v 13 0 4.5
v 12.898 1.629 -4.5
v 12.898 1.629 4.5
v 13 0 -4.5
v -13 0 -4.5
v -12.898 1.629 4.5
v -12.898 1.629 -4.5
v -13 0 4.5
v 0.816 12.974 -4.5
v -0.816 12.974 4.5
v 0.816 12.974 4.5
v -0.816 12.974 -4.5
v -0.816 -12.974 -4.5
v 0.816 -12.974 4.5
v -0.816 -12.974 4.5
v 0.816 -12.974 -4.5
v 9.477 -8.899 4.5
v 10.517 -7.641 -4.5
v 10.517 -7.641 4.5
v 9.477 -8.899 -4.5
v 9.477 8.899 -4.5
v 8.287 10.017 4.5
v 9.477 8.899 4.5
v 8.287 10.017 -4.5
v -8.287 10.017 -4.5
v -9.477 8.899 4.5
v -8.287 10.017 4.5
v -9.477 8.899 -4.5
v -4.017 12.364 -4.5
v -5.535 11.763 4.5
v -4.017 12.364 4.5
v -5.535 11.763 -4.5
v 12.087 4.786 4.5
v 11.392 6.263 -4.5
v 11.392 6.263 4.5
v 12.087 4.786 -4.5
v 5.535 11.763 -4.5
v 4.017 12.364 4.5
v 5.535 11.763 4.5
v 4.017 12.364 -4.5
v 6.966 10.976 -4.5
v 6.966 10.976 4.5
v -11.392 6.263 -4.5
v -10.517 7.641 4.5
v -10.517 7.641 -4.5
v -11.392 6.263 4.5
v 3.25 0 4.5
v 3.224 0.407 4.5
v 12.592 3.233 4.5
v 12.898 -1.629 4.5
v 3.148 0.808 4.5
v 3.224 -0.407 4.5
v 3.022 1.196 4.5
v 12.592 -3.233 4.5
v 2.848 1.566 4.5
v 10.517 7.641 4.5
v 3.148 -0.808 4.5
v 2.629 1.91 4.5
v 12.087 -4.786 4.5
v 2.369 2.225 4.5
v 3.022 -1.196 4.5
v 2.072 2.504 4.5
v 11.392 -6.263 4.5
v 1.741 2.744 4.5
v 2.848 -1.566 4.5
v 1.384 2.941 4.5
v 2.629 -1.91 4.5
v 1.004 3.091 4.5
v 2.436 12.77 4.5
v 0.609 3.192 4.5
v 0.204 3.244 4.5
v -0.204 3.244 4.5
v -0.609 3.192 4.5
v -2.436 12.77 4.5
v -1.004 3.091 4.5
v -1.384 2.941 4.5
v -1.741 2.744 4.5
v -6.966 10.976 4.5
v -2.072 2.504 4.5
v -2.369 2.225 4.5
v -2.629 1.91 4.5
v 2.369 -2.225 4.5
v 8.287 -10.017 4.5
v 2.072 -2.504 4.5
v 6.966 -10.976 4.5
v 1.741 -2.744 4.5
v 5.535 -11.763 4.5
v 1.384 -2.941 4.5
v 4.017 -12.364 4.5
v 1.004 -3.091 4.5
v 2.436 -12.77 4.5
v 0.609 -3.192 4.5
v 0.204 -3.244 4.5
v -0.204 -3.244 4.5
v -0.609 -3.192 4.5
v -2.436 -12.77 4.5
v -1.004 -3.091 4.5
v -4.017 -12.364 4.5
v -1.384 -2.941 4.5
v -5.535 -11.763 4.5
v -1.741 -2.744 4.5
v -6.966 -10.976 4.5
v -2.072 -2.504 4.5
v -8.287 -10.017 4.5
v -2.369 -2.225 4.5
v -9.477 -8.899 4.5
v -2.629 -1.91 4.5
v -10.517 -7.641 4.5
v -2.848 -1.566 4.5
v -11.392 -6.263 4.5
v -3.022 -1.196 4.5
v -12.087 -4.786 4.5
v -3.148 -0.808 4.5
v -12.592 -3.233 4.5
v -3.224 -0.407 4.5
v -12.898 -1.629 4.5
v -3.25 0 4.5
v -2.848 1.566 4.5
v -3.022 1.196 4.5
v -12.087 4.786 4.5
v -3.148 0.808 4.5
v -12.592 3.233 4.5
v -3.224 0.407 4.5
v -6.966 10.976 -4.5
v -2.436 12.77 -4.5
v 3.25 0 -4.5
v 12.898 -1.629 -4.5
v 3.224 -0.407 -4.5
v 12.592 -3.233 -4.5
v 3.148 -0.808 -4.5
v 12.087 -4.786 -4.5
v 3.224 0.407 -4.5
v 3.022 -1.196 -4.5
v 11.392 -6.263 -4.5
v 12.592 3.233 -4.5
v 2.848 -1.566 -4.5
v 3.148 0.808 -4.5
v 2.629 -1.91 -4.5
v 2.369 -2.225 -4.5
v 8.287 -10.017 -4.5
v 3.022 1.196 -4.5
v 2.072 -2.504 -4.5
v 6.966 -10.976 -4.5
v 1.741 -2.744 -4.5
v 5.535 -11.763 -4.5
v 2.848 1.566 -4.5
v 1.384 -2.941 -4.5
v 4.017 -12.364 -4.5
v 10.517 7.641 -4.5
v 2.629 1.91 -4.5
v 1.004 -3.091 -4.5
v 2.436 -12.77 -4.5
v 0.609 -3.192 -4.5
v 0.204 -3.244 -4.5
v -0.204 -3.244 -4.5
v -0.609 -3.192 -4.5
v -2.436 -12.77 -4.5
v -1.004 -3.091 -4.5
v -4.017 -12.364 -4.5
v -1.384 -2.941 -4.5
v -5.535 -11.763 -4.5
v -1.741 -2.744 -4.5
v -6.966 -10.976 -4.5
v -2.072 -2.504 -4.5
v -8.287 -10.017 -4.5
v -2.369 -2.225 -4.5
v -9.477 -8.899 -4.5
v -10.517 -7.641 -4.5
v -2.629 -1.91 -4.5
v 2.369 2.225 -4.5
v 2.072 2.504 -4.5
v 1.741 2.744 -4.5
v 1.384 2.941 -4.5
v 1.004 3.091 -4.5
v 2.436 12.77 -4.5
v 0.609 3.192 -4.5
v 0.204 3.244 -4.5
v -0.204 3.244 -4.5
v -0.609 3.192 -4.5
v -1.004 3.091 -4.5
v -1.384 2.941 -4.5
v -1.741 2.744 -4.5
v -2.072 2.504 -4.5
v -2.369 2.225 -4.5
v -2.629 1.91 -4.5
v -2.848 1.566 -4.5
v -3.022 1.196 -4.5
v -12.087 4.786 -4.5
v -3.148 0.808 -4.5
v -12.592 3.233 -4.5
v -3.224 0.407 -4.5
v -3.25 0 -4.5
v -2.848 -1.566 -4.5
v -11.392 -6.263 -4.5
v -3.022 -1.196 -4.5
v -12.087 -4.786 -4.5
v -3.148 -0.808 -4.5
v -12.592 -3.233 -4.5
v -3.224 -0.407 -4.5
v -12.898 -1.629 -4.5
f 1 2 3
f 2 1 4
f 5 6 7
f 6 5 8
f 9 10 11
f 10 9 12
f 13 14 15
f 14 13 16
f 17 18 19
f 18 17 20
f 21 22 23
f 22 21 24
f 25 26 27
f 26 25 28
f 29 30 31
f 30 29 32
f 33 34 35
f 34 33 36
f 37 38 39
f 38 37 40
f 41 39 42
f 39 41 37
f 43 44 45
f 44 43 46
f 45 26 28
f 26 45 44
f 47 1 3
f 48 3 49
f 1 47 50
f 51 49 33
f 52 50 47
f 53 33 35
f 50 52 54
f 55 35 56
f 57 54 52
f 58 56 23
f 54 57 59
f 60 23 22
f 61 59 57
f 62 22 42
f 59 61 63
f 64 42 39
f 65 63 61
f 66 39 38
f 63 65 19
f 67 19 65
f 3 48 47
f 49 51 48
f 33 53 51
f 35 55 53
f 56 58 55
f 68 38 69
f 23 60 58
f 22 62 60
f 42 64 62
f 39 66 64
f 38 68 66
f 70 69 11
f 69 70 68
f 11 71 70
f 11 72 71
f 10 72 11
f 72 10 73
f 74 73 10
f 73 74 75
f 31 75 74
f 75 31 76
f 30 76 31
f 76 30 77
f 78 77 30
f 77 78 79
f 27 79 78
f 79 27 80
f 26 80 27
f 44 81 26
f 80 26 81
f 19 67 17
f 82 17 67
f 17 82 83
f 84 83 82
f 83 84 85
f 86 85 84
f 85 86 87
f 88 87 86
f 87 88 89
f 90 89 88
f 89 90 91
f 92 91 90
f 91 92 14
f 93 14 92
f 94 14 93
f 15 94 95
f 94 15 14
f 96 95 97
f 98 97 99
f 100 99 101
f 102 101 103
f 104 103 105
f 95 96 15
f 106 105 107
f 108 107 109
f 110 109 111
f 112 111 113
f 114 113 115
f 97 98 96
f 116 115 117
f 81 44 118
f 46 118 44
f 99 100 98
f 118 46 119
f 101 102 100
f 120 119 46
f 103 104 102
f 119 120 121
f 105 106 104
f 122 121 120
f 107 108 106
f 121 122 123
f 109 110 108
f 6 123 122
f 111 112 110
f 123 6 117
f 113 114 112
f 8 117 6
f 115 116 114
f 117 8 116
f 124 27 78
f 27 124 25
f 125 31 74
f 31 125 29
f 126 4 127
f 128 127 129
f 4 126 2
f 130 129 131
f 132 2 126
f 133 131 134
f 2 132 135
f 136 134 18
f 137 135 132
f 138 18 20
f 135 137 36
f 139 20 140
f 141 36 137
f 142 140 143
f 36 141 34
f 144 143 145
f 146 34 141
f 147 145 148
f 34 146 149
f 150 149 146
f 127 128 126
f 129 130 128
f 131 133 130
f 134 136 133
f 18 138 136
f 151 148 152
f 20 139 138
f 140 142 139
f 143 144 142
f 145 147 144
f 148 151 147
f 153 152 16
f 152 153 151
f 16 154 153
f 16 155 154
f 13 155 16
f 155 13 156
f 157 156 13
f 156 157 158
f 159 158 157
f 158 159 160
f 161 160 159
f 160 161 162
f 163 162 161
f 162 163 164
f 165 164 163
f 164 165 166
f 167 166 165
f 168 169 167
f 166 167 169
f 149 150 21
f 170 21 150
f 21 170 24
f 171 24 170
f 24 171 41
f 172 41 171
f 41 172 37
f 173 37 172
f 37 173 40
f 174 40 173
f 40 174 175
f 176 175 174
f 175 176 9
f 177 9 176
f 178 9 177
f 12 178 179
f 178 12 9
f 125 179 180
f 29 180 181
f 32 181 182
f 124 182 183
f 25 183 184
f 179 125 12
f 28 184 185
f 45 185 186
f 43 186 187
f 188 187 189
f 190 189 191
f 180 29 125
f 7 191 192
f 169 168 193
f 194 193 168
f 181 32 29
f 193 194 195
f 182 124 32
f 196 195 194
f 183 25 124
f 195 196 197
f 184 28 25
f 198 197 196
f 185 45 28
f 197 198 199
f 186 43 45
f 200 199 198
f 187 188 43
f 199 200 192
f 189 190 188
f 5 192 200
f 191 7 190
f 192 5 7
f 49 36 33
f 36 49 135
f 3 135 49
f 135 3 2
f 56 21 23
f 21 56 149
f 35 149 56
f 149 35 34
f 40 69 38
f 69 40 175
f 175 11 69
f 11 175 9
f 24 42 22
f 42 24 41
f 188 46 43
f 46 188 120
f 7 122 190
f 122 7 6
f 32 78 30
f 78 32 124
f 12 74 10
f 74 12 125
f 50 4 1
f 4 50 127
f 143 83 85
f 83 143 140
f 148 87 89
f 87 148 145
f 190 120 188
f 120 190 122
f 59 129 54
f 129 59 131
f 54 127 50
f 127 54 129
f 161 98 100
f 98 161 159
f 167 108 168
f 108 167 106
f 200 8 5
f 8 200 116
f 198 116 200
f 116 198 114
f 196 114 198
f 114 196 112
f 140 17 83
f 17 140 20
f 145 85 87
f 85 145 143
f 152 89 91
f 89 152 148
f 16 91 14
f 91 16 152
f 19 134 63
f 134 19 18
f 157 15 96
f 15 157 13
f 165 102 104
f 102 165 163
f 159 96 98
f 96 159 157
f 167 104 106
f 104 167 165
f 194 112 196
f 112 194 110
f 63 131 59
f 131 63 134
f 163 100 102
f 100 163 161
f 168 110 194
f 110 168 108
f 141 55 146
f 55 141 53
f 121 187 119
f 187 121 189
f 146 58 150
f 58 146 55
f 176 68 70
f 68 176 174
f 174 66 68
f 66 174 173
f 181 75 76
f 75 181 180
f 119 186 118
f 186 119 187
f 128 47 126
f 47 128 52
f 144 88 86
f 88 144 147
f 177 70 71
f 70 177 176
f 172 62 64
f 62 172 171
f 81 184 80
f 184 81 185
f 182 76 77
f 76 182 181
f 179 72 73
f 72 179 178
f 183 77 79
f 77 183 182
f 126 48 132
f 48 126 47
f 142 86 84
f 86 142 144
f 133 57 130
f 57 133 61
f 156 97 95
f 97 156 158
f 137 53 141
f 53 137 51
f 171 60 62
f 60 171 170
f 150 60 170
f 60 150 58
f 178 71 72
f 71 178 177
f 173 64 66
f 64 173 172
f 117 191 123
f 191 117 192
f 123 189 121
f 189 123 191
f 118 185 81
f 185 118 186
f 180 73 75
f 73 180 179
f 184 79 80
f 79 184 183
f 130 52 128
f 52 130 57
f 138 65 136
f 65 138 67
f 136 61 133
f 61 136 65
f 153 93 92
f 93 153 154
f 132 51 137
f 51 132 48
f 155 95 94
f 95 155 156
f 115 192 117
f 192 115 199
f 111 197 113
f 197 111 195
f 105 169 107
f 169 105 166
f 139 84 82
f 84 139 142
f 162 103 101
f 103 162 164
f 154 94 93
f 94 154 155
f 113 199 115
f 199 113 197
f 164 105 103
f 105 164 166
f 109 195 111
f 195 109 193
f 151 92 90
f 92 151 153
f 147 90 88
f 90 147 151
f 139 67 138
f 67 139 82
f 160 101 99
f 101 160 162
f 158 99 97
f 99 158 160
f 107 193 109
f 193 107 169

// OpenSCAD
$fn = 50;


difference() {
	union() {
		translate(v = [0, 0, -4.5000000000]) {
			cylinder(h = 9, r = 13.0000000000);
		}
	}
	union() {
		translate(v = [0, 0, -100.0000000000]) {
			cylinder(h = 200, r = 3.2500000000);
		}
	}
}
